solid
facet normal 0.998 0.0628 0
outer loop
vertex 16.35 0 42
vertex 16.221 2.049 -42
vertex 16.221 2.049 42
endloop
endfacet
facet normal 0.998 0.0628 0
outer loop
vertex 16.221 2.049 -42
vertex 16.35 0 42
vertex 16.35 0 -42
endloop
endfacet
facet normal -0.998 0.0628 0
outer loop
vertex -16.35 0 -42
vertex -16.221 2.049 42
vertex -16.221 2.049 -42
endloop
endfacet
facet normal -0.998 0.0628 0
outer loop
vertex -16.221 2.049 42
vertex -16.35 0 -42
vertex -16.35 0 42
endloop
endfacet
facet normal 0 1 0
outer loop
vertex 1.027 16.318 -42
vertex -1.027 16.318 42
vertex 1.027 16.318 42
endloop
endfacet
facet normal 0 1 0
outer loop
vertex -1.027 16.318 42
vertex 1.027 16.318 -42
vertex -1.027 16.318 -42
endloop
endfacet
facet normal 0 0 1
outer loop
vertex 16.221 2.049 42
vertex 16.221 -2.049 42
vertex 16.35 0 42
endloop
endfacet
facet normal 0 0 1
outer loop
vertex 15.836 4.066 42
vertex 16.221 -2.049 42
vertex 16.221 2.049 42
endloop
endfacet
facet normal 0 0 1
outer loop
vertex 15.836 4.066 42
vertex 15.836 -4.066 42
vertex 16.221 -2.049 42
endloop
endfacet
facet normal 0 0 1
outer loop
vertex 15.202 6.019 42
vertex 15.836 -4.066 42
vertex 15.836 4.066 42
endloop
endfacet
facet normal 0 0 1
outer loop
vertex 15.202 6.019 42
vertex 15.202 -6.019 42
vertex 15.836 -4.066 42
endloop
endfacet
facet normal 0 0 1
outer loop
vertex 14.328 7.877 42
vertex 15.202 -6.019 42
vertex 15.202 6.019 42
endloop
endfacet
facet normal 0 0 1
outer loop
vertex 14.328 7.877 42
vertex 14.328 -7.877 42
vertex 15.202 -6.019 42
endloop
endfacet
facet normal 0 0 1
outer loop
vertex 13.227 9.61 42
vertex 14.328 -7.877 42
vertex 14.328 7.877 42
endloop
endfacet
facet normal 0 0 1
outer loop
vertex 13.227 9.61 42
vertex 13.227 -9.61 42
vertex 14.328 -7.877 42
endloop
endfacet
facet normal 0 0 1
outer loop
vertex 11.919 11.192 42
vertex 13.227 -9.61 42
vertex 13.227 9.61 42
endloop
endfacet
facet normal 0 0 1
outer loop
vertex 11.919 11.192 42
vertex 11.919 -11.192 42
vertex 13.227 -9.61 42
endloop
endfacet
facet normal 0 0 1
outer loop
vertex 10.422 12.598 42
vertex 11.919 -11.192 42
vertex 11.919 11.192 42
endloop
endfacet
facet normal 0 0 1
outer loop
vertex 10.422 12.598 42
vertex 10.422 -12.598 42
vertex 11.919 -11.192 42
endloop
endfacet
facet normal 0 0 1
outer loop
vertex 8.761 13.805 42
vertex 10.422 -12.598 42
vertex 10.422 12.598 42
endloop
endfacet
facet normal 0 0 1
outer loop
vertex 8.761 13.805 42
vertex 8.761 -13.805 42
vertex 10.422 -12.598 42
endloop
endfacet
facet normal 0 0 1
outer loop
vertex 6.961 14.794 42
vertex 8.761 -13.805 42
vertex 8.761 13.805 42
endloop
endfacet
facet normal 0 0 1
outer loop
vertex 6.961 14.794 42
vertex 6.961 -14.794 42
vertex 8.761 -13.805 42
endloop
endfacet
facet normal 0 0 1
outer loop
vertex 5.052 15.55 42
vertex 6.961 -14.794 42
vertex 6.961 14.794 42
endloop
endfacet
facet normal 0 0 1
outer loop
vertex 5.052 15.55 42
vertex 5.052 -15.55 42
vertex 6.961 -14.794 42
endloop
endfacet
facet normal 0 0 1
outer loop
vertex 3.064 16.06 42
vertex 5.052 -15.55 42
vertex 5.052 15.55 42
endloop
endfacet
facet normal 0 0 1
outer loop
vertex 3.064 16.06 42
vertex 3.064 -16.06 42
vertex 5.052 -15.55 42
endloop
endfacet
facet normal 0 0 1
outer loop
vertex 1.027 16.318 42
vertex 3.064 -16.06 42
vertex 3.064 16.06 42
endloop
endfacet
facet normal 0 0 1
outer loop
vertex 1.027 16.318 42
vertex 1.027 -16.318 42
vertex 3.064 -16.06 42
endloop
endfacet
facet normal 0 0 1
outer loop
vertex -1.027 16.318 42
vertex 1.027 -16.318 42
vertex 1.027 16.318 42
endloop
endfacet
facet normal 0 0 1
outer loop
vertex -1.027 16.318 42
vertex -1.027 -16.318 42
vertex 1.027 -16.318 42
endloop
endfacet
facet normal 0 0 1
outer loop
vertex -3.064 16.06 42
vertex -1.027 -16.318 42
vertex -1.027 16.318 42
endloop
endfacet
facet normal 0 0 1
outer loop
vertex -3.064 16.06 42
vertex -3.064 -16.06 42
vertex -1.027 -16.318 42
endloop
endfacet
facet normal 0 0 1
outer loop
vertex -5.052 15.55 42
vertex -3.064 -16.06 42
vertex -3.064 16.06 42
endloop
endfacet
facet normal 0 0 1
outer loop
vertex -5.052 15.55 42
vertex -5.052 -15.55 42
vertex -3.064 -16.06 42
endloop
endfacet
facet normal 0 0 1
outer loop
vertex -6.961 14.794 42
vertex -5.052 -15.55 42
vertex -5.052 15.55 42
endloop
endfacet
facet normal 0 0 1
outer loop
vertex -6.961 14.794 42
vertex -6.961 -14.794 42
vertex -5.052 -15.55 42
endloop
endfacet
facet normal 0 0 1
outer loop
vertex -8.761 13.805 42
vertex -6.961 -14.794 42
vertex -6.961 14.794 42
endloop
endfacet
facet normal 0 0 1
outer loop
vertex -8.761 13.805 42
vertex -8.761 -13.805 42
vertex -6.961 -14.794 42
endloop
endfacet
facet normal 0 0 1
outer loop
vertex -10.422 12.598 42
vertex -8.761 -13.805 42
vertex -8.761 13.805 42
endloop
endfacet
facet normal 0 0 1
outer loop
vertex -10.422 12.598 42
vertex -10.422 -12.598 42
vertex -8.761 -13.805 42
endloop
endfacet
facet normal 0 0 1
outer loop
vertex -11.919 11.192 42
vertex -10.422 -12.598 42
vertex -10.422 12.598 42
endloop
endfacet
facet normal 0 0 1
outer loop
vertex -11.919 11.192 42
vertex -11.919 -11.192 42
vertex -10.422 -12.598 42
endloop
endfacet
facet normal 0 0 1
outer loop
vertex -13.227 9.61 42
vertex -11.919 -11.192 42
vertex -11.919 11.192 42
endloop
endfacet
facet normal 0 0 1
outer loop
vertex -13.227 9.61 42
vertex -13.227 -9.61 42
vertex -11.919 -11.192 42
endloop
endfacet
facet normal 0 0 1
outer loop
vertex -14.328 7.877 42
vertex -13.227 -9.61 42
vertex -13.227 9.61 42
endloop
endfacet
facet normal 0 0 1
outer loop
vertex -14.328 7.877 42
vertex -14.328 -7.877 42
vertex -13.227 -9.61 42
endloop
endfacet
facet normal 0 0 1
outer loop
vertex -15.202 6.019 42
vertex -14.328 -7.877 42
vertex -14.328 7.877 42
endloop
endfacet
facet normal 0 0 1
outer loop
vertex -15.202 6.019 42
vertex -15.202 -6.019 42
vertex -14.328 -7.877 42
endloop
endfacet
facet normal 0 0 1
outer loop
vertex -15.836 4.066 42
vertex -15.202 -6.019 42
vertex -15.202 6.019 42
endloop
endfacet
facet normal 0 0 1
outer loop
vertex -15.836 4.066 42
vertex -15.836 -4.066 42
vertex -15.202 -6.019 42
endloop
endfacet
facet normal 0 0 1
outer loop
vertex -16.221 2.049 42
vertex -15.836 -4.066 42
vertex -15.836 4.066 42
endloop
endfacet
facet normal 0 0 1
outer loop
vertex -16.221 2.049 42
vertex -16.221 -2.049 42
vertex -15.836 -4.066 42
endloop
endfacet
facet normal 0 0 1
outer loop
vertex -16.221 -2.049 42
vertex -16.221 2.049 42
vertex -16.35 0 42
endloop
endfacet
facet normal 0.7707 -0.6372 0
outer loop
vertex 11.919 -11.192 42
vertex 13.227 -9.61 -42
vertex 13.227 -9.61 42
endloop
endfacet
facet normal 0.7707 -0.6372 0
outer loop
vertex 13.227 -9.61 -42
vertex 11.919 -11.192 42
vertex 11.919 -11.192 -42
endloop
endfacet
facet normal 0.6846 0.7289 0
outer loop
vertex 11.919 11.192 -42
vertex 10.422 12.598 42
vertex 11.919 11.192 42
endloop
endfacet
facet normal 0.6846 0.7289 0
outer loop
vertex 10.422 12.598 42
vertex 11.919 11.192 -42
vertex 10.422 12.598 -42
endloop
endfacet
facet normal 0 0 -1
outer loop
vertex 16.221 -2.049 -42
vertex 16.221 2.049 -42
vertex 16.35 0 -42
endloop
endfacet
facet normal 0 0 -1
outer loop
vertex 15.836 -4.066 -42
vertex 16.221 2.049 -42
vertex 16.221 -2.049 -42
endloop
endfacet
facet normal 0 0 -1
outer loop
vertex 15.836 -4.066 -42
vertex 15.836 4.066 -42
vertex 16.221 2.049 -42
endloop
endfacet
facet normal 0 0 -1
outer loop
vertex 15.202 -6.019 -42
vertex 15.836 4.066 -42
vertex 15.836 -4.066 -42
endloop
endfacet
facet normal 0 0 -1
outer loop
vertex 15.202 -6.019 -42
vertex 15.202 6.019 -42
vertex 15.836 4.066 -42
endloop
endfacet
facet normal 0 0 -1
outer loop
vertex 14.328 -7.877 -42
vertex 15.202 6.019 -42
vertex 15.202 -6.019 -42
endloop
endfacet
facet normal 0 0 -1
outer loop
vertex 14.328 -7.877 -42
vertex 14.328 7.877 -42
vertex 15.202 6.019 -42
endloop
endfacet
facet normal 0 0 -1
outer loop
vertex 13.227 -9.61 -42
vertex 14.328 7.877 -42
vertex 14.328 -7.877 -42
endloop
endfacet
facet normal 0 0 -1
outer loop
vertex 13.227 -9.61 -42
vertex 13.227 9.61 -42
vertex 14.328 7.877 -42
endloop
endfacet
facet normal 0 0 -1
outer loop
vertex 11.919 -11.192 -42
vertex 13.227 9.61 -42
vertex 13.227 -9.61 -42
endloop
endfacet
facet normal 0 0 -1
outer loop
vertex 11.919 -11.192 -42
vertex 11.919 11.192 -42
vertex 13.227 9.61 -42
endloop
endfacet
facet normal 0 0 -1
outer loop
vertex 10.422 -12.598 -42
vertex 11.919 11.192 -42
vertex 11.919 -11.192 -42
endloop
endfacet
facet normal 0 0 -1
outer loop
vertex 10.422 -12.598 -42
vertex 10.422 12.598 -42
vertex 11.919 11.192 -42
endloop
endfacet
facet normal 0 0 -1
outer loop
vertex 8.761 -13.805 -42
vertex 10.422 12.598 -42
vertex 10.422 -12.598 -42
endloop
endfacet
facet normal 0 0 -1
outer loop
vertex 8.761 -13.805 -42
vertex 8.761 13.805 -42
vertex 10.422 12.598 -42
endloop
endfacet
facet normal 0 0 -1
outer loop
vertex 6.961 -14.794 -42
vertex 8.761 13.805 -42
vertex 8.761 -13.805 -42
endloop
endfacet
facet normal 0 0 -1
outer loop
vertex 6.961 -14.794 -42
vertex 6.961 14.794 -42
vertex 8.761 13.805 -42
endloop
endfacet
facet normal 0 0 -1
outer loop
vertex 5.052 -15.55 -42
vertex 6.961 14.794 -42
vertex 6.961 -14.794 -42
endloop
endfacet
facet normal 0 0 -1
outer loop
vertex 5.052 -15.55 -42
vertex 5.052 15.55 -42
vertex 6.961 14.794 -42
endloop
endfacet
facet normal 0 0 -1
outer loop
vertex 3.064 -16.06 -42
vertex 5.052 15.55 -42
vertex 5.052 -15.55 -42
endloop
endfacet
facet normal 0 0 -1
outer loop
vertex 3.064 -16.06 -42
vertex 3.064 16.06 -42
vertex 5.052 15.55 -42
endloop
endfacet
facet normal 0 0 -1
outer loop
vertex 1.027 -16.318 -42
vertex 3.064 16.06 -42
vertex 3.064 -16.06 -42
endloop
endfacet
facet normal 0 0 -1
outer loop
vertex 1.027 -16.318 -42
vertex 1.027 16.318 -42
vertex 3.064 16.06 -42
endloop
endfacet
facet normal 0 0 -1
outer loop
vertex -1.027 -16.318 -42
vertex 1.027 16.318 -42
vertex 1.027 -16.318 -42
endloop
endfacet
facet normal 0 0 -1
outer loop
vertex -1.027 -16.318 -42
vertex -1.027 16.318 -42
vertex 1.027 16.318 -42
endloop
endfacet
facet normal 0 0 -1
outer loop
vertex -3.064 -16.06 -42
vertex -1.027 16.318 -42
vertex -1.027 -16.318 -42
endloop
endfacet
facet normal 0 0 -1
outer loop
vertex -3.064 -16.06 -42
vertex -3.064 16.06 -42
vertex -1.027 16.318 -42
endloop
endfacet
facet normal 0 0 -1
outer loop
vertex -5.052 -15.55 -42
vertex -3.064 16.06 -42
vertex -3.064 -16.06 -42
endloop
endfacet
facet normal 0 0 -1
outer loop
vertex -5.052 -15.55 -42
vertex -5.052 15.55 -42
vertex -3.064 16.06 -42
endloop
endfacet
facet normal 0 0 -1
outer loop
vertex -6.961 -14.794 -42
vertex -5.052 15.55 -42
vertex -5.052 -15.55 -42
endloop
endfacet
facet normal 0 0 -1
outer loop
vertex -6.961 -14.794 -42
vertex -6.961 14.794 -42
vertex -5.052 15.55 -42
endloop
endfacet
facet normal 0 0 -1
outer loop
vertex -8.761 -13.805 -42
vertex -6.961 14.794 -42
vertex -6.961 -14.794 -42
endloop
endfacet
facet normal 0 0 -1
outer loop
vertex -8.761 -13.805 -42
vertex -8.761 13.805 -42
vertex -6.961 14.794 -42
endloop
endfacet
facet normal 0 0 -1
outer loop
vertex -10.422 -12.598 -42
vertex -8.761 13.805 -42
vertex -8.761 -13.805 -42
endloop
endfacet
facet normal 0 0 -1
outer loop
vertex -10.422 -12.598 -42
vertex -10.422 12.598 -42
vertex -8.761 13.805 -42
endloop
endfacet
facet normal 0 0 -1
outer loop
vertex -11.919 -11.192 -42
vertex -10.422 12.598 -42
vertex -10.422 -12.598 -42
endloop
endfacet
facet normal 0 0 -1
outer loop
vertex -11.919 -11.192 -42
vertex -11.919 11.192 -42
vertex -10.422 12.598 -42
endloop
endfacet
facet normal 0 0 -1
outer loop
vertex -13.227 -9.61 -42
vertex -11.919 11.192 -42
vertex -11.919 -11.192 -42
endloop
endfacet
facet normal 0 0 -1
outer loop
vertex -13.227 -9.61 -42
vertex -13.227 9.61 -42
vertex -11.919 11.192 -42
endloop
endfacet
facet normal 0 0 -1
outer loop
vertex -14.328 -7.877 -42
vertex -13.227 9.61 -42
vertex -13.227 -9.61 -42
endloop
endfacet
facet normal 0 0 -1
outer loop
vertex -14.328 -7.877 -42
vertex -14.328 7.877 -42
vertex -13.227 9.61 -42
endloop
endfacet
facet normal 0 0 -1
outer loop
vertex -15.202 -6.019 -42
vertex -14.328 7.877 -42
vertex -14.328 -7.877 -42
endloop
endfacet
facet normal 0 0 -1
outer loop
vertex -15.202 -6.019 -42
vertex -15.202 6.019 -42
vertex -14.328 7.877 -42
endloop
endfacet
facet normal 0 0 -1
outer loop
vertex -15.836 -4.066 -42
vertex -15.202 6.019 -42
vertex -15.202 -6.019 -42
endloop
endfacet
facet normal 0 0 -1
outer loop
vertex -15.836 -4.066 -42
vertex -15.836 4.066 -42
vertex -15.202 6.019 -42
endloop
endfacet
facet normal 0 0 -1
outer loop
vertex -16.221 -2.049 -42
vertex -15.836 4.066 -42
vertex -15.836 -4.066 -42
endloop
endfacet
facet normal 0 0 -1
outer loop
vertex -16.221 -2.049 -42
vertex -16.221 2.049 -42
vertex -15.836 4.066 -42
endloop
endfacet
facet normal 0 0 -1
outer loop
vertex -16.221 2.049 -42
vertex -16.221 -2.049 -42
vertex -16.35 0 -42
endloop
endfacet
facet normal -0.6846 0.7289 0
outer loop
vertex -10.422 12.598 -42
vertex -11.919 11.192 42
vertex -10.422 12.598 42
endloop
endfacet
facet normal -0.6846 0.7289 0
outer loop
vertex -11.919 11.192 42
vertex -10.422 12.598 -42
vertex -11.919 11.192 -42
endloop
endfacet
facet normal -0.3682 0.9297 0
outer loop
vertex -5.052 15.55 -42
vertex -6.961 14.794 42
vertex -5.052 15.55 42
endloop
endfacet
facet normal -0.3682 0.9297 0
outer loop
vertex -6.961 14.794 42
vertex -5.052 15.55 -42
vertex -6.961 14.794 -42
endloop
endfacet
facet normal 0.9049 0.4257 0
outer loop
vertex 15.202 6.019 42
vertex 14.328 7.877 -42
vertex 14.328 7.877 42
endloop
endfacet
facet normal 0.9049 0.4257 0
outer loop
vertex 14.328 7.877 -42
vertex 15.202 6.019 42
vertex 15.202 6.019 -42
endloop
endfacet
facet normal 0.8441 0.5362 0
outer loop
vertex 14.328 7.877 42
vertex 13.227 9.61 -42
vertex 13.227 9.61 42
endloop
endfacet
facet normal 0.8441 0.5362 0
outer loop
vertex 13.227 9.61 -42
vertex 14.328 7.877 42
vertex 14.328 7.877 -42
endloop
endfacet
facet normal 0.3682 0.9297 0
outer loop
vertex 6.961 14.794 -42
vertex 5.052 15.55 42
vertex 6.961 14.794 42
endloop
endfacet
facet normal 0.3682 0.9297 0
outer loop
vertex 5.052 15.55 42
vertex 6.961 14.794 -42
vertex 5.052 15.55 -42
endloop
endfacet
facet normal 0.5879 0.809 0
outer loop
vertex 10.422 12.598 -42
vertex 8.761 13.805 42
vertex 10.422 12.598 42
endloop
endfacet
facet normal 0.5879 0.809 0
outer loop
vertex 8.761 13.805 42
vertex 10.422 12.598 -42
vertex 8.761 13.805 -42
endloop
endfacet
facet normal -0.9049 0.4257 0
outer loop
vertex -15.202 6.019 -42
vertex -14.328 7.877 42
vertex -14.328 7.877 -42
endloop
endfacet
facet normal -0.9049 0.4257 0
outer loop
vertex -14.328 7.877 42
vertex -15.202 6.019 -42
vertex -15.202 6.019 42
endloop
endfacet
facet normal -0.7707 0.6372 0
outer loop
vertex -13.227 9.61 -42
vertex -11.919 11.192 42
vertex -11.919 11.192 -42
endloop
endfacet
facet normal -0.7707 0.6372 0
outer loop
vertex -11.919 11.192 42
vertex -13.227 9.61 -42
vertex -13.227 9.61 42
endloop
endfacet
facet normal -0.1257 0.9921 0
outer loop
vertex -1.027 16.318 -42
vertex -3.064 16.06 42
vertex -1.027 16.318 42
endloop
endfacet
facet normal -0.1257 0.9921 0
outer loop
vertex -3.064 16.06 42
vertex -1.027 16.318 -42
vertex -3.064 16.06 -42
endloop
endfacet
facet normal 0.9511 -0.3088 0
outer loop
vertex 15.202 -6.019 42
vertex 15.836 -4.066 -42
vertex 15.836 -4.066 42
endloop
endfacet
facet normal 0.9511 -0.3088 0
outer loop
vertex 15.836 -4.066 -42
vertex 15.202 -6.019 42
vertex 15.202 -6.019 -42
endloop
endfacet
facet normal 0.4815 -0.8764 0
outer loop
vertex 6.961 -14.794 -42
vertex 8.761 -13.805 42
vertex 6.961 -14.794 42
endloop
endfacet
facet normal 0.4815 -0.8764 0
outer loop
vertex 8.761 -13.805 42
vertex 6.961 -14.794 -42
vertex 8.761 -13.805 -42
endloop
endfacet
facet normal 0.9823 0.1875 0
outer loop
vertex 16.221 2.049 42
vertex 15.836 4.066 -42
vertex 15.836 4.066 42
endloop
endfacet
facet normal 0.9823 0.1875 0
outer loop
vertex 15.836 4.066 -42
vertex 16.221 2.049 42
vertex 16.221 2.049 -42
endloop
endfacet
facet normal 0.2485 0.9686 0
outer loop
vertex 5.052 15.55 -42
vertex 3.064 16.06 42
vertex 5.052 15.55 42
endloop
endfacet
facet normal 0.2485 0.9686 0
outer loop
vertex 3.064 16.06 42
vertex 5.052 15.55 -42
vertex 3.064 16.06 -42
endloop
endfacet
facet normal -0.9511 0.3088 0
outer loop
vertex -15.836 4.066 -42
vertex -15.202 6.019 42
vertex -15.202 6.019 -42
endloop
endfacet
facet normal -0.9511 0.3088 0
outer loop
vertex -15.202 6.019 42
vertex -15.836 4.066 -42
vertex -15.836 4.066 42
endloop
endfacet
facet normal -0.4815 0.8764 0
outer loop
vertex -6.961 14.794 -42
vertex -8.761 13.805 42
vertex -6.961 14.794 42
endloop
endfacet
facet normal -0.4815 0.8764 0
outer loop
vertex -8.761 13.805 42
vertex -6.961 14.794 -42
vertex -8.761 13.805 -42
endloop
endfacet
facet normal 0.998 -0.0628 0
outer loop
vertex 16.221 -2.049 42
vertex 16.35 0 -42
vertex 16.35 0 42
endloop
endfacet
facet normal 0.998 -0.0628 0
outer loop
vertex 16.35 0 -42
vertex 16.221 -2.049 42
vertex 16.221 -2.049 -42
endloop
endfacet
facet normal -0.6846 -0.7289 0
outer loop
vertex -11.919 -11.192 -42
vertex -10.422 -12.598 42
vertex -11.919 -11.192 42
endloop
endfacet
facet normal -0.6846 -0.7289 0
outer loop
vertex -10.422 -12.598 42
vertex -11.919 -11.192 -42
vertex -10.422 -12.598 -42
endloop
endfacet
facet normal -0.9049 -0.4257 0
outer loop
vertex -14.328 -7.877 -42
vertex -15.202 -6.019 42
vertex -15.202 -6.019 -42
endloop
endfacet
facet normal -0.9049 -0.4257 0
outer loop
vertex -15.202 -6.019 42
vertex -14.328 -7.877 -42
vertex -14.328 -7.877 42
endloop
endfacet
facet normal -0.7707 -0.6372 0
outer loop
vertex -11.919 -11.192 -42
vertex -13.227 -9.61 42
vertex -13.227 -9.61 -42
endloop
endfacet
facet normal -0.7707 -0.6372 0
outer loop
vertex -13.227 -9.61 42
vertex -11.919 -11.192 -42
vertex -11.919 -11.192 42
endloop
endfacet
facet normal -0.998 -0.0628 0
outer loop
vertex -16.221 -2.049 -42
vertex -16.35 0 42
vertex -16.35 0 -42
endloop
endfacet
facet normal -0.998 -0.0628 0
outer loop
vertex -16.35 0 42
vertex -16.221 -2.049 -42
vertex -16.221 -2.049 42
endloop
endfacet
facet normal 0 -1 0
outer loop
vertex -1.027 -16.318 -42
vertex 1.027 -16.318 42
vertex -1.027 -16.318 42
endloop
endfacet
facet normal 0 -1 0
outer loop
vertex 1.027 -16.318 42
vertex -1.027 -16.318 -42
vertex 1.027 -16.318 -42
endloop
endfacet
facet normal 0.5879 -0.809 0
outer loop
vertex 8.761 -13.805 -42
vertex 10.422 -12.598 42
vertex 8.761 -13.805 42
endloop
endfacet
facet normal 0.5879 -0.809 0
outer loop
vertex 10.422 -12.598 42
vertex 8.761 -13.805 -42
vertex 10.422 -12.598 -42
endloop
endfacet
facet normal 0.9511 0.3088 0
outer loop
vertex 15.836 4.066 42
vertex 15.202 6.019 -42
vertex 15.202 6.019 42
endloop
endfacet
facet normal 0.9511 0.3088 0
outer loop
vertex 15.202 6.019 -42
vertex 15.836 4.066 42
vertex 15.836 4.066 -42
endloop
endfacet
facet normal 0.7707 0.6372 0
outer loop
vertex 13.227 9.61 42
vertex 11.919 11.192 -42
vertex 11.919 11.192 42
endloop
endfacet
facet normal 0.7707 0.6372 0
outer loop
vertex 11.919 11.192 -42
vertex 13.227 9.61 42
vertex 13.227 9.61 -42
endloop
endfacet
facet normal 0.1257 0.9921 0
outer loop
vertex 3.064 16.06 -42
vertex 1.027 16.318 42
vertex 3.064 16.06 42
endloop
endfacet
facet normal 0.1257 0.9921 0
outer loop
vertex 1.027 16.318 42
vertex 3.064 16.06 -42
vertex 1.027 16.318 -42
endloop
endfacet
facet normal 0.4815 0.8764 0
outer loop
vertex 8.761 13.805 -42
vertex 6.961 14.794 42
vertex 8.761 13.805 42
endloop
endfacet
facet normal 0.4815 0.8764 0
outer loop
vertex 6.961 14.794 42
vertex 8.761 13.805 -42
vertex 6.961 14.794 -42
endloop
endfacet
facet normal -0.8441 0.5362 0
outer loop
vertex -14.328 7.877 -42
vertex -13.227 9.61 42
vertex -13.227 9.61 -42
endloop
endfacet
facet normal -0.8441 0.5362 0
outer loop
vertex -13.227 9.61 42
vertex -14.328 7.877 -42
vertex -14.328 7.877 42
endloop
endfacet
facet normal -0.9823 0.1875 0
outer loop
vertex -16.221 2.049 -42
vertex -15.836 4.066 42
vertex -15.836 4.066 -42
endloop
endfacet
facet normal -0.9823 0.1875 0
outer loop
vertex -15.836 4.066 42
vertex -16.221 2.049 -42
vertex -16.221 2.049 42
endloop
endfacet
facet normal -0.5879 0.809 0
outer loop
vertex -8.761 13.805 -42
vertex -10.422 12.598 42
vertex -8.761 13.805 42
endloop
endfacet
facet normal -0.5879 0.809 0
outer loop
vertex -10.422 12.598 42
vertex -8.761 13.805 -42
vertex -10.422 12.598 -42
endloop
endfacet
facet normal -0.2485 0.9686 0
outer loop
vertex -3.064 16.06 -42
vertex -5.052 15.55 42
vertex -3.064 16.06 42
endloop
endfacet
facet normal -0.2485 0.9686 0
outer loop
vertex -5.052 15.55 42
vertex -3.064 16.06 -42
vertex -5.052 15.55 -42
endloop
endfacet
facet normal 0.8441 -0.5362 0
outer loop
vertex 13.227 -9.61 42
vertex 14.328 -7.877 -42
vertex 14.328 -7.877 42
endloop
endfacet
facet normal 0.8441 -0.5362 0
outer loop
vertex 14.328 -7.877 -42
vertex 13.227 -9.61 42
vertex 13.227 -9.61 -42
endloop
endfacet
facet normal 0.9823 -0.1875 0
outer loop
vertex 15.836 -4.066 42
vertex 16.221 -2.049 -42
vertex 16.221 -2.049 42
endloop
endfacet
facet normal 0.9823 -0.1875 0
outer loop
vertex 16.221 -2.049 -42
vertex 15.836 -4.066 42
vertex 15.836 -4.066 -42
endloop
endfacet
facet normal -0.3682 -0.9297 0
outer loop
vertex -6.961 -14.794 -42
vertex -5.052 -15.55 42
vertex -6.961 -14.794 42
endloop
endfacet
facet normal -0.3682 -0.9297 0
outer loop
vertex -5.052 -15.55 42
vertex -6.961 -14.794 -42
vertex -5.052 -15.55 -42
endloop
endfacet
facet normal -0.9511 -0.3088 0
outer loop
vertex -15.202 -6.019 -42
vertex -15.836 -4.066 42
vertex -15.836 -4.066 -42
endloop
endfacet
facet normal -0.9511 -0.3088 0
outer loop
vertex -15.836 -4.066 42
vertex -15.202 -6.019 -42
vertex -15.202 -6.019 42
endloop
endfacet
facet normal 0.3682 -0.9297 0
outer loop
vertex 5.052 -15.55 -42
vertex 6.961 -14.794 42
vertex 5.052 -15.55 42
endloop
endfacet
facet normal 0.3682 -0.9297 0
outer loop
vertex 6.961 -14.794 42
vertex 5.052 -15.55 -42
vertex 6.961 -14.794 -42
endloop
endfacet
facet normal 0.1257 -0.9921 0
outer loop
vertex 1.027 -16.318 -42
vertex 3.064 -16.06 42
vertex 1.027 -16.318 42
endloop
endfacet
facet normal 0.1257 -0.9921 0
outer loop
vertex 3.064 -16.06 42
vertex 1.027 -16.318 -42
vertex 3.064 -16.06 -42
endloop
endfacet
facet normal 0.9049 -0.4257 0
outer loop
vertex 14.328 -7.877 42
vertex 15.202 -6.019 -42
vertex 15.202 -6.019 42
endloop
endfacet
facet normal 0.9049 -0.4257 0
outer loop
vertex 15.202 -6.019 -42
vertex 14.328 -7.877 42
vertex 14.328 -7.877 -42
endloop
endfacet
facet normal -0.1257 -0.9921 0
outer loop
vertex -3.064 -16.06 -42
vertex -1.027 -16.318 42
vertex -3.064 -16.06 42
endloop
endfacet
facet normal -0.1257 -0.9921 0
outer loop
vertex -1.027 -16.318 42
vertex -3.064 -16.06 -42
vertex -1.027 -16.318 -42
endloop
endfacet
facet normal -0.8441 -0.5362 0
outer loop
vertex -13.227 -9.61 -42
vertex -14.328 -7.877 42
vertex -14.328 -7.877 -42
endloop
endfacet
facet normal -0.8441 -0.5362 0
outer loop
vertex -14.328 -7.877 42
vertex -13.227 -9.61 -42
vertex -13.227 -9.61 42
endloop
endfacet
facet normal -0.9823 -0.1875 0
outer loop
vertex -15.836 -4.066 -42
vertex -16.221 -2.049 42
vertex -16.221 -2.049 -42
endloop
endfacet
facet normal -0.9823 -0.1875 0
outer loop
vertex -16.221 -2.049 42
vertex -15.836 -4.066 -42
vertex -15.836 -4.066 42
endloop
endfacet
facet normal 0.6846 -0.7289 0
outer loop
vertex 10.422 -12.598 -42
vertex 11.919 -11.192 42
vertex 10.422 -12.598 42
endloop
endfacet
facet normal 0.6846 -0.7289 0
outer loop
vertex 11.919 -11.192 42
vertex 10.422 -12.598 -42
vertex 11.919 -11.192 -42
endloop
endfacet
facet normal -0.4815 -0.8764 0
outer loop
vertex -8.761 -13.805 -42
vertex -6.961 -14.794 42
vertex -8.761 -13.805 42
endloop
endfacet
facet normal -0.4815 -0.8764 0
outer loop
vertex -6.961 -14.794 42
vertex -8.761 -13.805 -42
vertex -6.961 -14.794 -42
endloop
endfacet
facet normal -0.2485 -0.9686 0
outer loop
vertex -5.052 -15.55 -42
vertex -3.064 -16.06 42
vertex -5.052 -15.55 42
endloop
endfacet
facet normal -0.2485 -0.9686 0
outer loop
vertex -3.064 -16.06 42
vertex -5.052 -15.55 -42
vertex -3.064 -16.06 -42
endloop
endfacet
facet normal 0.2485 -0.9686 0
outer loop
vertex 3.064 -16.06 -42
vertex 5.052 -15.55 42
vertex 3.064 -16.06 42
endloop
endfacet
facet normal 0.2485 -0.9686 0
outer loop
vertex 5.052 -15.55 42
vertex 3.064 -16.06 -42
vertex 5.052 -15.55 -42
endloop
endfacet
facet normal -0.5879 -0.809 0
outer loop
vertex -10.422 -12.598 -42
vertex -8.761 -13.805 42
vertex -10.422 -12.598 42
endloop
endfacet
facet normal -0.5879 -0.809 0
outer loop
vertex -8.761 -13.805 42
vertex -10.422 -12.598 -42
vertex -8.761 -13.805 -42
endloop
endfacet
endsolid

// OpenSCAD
$fn = 50;


difference() {
	union() {
		translate(v = [0, 0, -42.0000000000]) {
			cylinder(h = 84, r = 16.3500000000);
		}
	}
	union() {
		translate(v = [0, 0, -100.0000000000]) {
			cylinder(h = 200, r = 0);
		}
	}
}
